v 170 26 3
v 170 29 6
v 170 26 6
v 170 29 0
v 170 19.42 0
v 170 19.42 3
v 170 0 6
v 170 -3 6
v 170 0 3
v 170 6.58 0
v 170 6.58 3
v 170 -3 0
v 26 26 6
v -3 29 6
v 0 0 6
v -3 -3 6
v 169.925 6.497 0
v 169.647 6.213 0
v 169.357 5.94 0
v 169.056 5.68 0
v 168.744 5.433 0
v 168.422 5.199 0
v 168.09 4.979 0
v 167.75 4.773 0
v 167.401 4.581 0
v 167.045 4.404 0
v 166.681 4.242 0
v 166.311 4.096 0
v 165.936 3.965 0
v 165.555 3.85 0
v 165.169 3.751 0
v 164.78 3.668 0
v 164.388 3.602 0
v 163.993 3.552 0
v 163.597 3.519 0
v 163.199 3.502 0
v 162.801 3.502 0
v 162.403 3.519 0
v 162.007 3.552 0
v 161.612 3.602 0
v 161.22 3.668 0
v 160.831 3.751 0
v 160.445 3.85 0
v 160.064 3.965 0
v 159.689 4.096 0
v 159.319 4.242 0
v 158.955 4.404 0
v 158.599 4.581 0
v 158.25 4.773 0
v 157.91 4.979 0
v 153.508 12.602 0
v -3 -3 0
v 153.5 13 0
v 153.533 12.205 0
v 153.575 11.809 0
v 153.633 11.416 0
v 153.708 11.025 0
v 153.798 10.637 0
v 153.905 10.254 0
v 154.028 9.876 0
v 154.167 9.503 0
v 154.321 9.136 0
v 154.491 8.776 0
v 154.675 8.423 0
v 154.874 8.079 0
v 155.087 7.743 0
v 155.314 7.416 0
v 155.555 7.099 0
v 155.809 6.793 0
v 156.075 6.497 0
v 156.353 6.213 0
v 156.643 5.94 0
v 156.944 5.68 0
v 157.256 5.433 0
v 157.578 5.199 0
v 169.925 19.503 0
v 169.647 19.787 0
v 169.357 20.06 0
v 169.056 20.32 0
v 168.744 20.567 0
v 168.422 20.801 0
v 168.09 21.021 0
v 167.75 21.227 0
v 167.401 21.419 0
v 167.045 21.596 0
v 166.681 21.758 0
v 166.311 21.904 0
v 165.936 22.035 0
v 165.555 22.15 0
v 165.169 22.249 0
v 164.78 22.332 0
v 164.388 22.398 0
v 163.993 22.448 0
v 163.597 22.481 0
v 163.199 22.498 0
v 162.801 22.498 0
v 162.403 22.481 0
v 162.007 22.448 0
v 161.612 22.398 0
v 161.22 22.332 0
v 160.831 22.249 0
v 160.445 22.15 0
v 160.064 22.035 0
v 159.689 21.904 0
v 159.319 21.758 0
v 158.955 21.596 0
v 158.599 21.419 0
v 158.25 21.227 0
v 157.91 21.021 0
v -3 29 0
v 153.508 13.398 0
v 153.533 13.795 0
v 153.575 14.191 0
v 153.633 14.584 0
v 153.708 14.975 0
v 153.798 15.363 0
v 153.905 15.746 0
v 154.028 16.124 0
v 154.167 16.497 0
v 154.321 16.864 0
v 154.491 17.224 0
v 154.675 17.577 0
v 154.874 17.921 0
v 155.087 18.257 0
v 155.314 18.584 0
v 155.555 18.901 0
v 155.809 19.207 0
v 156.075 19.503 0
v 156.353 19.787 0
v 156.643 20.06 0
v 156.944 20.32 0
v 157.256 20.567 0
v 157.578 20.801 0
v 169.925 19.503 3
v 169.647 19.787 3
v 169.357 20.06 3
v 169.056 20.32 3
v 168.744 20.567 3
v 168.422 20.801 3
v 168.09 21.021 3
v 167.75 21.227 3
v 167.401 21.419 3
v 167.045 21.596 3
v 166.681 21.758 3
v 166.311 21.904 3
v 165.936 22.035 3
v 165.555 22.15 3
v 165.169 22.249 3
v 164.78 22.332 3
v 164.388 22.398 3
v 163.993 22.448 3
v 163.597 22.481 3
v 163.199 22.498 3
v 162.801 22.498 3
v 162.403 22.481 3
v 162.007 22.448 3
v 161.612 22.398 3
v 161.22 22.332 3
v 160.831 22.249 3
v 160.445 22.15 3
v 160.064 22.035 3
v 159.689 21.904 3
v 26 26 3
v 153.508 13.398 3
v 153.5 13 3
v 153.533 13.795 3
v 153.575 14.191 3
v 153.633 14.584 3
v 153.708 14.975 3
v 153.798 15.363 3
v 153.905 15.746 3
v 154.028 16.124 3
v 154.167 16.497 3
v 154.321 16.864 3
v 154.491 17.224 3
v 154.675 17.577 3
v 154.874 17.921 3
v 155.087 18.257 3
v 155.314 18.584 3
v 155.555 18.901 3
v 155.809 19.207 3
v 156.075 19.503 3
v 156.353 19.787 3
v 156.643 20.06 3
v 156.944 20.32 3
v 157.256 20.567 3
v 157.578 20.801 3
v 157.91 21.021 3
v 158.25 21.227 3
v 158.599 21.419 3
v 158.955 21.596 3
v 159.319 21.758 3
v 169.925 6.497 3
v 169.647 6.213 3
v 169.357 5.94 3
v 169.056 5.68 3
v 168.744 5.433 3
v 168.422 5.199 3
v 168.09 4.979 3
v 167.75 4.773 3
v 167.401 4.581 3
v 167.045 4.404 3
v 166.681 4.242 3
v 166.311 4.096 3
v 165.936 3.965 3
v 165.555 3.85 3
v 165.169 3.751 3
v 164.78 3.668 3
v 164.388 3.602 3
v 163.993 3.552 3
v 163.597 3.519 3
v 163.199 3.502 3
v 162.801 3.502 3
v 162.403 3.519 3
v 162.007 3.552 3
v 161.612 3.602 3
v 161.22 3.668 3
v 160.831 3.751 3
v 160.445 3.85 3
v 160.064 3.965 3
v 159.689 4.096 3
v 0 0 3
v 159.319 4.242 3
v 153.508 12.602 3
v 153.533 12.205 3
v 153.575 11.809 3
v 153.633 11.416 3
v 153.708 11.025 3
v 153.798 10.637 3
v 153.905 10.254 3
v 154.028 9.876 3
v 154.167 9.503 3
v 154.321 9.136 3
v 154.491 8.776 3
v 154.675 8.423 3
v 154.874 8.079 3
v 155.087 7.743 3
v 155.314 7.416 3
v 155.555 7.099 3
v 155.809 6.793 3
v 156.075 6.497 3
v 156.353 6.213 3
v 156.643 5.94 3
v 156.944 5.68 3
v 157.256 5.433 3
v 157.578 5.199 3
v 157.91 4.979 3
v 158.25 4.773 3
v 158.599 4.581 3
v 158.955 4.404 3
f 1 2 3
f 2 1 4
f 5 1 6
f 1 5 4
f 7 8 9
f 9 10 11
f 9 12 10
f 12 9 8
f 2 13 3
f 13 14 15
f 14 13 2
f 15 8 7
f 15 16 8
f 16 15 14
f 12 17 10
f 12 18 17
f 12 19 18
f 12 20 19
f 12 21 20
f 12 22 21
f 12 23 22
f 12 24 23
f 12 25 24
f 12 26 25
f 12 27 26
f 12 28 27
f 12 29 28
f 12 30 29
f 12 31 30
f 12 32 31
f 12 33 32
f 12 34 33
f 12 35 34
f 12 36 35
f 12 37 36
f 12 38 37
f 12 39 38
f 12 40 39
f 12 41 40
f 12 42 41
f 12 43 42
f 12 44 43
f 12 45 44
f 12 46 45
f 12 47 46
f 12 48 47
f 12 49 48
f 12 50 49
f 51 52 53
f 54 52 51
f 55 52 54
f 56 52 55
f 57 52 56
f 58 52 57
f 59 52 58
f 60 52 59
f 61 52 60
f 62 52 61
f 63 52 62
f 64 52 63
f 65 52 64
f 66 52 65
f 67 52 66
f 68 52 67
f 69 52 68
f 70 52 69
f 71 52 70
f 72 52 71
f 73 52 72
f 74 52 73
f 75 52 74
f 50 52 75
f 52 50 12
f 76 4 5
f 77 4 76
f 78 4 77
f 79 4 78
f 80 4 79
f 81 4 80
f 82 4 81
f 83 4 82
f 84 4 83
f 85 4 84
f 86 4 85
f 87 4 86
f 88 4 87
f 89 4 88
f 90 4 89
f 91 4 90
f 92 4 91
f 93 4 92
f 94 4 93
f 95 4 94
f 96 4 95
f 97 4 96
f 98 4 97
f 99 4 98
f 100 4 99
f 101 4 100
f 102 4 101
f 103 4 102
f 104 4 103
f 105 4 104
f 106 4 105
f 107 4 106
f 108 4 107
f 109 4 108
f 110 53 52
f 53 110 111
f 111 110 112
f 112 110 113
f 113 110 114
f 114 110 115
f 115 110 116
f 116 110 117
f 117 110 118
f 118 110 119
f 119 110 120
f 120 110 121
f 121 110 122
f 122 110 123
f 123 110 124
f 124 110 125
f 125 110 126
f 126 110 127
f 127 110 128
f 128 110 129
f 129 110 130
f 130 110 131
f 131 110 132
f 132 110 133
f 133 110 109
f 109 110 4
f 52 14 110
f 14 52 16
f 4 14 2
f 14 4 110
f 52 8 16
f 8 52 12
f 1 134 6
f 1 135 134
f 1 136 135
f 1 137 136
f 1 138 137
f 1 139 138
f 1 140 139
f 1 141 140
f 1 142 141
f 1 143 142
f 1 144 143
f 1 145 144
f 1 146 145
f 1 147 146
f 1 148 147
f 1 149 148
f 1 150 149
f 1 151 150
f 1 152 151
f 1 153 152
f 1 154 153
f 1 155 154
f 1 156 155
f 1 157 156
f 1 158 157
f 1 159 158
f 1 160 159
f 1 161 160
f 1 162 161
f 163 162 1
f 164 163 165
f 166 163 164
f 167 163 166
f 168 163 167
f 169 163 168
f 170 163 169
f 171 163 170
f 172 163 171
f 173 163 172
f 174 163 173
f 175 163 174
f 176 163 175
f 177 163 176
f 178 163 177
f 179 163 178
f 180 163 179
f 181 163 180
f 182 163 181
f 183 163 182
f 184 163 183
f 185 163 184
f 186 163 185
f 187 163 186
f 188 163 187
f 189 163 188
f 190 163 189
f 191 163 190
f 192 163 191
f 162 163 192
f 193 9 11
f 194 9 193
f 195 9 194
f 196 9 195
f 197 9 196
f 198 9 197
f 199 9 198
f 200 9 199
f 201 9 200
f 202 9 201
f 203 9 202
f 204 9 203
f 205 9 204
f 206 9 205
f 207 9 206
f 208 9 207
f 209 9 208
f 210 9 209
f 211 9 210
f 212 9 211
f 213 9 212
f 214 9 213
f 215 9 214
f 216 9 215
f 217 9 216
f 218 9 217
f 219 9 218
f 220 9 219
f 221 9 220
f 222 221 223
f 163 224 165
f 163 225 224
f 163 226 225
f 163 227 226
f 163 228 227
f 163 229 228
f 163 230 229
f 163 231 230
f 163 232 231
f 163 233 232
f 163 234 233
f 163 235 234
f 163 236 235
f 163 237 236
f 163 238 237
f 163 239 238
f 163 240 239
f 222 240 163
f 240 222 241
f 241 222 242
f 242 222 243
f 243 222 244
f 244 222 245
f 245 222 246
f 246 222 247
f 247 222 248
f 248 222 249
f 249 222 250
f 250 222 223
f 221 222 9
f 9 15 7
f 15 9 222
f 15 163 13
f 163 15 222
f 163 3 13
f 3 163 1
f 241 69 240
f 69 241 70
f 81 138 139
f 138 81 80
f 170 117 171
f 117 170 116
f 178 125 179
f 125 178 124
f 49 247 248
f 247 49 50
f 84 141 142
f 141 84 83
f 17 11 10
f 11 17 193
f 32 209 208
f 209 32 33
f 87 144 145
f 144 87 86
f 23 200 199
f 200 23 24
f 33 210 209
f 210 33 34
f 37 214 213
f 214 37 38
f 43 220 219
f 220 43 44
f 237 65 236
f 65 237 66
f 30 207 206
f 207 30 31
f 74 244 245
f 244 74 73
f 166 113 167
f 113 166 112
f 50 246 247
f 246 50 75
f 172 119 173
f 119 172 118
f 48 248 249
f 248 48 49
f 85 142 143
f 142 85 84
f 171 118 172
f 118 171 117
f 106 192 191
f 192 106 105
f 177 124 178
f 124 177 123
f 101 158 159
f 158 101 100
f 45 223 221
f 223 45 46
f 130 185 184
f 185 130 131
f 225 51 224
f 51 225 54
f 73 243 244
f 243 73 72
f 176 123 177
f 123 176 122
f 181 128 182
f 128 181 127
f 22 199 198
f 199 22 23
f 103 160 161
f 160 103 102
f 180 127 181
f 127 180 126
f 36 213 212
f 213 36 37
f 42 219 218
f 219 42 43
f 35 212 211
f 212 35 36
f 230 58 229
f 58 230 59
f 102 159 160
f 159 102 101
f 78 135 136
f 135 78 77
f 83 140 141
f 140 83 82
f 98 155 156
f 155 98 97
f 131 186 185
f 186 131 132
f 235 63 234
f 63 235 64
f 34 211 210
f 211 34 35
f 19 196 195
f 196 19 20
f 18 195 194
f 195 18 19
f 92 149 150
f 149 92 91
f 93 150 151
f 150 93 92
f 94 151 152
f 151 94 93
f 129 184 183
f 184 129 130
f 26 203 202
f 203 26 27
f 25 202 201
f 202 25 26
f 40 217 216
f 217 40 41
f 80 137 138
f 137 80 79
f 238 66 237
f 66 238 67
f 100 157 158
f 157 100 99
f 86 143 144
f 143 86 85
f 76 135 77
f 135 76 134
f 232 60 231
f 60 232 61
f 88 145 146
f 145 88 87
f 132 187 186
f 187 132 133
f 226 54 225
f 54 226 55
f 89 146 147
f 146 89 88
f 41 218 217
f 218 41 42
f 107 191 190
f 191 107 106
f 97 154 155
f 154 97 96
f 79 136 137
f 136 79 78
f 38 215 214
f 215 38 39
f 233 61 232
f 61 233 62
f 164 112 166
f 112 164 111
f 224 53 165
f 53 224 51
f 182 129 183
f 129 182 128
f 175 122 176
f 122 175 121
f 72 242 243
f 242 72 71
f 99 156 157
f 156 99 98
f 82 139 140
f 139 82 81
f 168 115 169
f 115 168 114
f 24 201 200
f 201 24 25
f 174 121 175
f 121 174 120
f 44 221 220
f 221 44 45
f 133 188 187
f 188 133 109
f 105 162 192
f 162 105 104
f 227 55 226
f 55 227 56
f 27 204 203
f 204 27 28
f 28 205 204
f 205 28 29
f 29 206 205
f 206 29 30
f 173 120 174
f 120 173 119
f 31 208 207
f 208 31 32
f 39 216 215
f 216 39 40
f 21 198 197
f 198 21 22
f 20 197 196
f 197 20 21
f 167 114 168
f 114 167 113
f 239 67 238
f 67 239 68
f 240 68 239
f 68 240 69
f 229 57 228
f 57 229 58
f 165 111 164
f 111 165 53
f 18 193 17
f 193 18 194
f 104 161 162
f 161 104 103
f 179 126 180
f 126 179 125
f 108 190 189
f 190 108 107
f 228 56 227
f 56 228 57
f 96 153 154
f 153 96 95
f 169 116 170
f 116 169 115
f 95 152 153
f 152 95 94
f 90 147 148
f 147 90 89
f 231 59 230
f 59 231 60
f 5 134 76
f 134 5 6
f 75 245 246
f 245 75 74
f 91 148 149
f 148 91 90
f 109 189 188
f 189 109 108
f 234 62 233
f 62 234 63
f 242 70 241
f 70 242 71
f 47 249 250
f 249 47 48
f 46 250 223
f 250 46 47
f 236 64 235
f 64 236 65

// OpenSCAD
$fa = 1;
$fs = 0.4;

width = 26;
height = 170;
holeDiameter = 19;
thickness = 3;

difference () {
    // тело линейки
    color("green")
    translate([-thickness, -thickness, 0])
    cube([height + thickness, width + 2 * thickness, 2 * thickness]);
    
    // вырез под ленточку
    points = [
        [0, 0],
        [height, 0],
        [height, width],
        [width, width]
    ];

    // вырез под ленточку
    translate([0, 0, thickness])
    linear_extrude(height = thickness)
        polygon(points);
        
    // отверстие под наковальню
    translate([height - 7, width/2, 0])
    cylinder(2 * thickness, d = holeDiameter);
}
